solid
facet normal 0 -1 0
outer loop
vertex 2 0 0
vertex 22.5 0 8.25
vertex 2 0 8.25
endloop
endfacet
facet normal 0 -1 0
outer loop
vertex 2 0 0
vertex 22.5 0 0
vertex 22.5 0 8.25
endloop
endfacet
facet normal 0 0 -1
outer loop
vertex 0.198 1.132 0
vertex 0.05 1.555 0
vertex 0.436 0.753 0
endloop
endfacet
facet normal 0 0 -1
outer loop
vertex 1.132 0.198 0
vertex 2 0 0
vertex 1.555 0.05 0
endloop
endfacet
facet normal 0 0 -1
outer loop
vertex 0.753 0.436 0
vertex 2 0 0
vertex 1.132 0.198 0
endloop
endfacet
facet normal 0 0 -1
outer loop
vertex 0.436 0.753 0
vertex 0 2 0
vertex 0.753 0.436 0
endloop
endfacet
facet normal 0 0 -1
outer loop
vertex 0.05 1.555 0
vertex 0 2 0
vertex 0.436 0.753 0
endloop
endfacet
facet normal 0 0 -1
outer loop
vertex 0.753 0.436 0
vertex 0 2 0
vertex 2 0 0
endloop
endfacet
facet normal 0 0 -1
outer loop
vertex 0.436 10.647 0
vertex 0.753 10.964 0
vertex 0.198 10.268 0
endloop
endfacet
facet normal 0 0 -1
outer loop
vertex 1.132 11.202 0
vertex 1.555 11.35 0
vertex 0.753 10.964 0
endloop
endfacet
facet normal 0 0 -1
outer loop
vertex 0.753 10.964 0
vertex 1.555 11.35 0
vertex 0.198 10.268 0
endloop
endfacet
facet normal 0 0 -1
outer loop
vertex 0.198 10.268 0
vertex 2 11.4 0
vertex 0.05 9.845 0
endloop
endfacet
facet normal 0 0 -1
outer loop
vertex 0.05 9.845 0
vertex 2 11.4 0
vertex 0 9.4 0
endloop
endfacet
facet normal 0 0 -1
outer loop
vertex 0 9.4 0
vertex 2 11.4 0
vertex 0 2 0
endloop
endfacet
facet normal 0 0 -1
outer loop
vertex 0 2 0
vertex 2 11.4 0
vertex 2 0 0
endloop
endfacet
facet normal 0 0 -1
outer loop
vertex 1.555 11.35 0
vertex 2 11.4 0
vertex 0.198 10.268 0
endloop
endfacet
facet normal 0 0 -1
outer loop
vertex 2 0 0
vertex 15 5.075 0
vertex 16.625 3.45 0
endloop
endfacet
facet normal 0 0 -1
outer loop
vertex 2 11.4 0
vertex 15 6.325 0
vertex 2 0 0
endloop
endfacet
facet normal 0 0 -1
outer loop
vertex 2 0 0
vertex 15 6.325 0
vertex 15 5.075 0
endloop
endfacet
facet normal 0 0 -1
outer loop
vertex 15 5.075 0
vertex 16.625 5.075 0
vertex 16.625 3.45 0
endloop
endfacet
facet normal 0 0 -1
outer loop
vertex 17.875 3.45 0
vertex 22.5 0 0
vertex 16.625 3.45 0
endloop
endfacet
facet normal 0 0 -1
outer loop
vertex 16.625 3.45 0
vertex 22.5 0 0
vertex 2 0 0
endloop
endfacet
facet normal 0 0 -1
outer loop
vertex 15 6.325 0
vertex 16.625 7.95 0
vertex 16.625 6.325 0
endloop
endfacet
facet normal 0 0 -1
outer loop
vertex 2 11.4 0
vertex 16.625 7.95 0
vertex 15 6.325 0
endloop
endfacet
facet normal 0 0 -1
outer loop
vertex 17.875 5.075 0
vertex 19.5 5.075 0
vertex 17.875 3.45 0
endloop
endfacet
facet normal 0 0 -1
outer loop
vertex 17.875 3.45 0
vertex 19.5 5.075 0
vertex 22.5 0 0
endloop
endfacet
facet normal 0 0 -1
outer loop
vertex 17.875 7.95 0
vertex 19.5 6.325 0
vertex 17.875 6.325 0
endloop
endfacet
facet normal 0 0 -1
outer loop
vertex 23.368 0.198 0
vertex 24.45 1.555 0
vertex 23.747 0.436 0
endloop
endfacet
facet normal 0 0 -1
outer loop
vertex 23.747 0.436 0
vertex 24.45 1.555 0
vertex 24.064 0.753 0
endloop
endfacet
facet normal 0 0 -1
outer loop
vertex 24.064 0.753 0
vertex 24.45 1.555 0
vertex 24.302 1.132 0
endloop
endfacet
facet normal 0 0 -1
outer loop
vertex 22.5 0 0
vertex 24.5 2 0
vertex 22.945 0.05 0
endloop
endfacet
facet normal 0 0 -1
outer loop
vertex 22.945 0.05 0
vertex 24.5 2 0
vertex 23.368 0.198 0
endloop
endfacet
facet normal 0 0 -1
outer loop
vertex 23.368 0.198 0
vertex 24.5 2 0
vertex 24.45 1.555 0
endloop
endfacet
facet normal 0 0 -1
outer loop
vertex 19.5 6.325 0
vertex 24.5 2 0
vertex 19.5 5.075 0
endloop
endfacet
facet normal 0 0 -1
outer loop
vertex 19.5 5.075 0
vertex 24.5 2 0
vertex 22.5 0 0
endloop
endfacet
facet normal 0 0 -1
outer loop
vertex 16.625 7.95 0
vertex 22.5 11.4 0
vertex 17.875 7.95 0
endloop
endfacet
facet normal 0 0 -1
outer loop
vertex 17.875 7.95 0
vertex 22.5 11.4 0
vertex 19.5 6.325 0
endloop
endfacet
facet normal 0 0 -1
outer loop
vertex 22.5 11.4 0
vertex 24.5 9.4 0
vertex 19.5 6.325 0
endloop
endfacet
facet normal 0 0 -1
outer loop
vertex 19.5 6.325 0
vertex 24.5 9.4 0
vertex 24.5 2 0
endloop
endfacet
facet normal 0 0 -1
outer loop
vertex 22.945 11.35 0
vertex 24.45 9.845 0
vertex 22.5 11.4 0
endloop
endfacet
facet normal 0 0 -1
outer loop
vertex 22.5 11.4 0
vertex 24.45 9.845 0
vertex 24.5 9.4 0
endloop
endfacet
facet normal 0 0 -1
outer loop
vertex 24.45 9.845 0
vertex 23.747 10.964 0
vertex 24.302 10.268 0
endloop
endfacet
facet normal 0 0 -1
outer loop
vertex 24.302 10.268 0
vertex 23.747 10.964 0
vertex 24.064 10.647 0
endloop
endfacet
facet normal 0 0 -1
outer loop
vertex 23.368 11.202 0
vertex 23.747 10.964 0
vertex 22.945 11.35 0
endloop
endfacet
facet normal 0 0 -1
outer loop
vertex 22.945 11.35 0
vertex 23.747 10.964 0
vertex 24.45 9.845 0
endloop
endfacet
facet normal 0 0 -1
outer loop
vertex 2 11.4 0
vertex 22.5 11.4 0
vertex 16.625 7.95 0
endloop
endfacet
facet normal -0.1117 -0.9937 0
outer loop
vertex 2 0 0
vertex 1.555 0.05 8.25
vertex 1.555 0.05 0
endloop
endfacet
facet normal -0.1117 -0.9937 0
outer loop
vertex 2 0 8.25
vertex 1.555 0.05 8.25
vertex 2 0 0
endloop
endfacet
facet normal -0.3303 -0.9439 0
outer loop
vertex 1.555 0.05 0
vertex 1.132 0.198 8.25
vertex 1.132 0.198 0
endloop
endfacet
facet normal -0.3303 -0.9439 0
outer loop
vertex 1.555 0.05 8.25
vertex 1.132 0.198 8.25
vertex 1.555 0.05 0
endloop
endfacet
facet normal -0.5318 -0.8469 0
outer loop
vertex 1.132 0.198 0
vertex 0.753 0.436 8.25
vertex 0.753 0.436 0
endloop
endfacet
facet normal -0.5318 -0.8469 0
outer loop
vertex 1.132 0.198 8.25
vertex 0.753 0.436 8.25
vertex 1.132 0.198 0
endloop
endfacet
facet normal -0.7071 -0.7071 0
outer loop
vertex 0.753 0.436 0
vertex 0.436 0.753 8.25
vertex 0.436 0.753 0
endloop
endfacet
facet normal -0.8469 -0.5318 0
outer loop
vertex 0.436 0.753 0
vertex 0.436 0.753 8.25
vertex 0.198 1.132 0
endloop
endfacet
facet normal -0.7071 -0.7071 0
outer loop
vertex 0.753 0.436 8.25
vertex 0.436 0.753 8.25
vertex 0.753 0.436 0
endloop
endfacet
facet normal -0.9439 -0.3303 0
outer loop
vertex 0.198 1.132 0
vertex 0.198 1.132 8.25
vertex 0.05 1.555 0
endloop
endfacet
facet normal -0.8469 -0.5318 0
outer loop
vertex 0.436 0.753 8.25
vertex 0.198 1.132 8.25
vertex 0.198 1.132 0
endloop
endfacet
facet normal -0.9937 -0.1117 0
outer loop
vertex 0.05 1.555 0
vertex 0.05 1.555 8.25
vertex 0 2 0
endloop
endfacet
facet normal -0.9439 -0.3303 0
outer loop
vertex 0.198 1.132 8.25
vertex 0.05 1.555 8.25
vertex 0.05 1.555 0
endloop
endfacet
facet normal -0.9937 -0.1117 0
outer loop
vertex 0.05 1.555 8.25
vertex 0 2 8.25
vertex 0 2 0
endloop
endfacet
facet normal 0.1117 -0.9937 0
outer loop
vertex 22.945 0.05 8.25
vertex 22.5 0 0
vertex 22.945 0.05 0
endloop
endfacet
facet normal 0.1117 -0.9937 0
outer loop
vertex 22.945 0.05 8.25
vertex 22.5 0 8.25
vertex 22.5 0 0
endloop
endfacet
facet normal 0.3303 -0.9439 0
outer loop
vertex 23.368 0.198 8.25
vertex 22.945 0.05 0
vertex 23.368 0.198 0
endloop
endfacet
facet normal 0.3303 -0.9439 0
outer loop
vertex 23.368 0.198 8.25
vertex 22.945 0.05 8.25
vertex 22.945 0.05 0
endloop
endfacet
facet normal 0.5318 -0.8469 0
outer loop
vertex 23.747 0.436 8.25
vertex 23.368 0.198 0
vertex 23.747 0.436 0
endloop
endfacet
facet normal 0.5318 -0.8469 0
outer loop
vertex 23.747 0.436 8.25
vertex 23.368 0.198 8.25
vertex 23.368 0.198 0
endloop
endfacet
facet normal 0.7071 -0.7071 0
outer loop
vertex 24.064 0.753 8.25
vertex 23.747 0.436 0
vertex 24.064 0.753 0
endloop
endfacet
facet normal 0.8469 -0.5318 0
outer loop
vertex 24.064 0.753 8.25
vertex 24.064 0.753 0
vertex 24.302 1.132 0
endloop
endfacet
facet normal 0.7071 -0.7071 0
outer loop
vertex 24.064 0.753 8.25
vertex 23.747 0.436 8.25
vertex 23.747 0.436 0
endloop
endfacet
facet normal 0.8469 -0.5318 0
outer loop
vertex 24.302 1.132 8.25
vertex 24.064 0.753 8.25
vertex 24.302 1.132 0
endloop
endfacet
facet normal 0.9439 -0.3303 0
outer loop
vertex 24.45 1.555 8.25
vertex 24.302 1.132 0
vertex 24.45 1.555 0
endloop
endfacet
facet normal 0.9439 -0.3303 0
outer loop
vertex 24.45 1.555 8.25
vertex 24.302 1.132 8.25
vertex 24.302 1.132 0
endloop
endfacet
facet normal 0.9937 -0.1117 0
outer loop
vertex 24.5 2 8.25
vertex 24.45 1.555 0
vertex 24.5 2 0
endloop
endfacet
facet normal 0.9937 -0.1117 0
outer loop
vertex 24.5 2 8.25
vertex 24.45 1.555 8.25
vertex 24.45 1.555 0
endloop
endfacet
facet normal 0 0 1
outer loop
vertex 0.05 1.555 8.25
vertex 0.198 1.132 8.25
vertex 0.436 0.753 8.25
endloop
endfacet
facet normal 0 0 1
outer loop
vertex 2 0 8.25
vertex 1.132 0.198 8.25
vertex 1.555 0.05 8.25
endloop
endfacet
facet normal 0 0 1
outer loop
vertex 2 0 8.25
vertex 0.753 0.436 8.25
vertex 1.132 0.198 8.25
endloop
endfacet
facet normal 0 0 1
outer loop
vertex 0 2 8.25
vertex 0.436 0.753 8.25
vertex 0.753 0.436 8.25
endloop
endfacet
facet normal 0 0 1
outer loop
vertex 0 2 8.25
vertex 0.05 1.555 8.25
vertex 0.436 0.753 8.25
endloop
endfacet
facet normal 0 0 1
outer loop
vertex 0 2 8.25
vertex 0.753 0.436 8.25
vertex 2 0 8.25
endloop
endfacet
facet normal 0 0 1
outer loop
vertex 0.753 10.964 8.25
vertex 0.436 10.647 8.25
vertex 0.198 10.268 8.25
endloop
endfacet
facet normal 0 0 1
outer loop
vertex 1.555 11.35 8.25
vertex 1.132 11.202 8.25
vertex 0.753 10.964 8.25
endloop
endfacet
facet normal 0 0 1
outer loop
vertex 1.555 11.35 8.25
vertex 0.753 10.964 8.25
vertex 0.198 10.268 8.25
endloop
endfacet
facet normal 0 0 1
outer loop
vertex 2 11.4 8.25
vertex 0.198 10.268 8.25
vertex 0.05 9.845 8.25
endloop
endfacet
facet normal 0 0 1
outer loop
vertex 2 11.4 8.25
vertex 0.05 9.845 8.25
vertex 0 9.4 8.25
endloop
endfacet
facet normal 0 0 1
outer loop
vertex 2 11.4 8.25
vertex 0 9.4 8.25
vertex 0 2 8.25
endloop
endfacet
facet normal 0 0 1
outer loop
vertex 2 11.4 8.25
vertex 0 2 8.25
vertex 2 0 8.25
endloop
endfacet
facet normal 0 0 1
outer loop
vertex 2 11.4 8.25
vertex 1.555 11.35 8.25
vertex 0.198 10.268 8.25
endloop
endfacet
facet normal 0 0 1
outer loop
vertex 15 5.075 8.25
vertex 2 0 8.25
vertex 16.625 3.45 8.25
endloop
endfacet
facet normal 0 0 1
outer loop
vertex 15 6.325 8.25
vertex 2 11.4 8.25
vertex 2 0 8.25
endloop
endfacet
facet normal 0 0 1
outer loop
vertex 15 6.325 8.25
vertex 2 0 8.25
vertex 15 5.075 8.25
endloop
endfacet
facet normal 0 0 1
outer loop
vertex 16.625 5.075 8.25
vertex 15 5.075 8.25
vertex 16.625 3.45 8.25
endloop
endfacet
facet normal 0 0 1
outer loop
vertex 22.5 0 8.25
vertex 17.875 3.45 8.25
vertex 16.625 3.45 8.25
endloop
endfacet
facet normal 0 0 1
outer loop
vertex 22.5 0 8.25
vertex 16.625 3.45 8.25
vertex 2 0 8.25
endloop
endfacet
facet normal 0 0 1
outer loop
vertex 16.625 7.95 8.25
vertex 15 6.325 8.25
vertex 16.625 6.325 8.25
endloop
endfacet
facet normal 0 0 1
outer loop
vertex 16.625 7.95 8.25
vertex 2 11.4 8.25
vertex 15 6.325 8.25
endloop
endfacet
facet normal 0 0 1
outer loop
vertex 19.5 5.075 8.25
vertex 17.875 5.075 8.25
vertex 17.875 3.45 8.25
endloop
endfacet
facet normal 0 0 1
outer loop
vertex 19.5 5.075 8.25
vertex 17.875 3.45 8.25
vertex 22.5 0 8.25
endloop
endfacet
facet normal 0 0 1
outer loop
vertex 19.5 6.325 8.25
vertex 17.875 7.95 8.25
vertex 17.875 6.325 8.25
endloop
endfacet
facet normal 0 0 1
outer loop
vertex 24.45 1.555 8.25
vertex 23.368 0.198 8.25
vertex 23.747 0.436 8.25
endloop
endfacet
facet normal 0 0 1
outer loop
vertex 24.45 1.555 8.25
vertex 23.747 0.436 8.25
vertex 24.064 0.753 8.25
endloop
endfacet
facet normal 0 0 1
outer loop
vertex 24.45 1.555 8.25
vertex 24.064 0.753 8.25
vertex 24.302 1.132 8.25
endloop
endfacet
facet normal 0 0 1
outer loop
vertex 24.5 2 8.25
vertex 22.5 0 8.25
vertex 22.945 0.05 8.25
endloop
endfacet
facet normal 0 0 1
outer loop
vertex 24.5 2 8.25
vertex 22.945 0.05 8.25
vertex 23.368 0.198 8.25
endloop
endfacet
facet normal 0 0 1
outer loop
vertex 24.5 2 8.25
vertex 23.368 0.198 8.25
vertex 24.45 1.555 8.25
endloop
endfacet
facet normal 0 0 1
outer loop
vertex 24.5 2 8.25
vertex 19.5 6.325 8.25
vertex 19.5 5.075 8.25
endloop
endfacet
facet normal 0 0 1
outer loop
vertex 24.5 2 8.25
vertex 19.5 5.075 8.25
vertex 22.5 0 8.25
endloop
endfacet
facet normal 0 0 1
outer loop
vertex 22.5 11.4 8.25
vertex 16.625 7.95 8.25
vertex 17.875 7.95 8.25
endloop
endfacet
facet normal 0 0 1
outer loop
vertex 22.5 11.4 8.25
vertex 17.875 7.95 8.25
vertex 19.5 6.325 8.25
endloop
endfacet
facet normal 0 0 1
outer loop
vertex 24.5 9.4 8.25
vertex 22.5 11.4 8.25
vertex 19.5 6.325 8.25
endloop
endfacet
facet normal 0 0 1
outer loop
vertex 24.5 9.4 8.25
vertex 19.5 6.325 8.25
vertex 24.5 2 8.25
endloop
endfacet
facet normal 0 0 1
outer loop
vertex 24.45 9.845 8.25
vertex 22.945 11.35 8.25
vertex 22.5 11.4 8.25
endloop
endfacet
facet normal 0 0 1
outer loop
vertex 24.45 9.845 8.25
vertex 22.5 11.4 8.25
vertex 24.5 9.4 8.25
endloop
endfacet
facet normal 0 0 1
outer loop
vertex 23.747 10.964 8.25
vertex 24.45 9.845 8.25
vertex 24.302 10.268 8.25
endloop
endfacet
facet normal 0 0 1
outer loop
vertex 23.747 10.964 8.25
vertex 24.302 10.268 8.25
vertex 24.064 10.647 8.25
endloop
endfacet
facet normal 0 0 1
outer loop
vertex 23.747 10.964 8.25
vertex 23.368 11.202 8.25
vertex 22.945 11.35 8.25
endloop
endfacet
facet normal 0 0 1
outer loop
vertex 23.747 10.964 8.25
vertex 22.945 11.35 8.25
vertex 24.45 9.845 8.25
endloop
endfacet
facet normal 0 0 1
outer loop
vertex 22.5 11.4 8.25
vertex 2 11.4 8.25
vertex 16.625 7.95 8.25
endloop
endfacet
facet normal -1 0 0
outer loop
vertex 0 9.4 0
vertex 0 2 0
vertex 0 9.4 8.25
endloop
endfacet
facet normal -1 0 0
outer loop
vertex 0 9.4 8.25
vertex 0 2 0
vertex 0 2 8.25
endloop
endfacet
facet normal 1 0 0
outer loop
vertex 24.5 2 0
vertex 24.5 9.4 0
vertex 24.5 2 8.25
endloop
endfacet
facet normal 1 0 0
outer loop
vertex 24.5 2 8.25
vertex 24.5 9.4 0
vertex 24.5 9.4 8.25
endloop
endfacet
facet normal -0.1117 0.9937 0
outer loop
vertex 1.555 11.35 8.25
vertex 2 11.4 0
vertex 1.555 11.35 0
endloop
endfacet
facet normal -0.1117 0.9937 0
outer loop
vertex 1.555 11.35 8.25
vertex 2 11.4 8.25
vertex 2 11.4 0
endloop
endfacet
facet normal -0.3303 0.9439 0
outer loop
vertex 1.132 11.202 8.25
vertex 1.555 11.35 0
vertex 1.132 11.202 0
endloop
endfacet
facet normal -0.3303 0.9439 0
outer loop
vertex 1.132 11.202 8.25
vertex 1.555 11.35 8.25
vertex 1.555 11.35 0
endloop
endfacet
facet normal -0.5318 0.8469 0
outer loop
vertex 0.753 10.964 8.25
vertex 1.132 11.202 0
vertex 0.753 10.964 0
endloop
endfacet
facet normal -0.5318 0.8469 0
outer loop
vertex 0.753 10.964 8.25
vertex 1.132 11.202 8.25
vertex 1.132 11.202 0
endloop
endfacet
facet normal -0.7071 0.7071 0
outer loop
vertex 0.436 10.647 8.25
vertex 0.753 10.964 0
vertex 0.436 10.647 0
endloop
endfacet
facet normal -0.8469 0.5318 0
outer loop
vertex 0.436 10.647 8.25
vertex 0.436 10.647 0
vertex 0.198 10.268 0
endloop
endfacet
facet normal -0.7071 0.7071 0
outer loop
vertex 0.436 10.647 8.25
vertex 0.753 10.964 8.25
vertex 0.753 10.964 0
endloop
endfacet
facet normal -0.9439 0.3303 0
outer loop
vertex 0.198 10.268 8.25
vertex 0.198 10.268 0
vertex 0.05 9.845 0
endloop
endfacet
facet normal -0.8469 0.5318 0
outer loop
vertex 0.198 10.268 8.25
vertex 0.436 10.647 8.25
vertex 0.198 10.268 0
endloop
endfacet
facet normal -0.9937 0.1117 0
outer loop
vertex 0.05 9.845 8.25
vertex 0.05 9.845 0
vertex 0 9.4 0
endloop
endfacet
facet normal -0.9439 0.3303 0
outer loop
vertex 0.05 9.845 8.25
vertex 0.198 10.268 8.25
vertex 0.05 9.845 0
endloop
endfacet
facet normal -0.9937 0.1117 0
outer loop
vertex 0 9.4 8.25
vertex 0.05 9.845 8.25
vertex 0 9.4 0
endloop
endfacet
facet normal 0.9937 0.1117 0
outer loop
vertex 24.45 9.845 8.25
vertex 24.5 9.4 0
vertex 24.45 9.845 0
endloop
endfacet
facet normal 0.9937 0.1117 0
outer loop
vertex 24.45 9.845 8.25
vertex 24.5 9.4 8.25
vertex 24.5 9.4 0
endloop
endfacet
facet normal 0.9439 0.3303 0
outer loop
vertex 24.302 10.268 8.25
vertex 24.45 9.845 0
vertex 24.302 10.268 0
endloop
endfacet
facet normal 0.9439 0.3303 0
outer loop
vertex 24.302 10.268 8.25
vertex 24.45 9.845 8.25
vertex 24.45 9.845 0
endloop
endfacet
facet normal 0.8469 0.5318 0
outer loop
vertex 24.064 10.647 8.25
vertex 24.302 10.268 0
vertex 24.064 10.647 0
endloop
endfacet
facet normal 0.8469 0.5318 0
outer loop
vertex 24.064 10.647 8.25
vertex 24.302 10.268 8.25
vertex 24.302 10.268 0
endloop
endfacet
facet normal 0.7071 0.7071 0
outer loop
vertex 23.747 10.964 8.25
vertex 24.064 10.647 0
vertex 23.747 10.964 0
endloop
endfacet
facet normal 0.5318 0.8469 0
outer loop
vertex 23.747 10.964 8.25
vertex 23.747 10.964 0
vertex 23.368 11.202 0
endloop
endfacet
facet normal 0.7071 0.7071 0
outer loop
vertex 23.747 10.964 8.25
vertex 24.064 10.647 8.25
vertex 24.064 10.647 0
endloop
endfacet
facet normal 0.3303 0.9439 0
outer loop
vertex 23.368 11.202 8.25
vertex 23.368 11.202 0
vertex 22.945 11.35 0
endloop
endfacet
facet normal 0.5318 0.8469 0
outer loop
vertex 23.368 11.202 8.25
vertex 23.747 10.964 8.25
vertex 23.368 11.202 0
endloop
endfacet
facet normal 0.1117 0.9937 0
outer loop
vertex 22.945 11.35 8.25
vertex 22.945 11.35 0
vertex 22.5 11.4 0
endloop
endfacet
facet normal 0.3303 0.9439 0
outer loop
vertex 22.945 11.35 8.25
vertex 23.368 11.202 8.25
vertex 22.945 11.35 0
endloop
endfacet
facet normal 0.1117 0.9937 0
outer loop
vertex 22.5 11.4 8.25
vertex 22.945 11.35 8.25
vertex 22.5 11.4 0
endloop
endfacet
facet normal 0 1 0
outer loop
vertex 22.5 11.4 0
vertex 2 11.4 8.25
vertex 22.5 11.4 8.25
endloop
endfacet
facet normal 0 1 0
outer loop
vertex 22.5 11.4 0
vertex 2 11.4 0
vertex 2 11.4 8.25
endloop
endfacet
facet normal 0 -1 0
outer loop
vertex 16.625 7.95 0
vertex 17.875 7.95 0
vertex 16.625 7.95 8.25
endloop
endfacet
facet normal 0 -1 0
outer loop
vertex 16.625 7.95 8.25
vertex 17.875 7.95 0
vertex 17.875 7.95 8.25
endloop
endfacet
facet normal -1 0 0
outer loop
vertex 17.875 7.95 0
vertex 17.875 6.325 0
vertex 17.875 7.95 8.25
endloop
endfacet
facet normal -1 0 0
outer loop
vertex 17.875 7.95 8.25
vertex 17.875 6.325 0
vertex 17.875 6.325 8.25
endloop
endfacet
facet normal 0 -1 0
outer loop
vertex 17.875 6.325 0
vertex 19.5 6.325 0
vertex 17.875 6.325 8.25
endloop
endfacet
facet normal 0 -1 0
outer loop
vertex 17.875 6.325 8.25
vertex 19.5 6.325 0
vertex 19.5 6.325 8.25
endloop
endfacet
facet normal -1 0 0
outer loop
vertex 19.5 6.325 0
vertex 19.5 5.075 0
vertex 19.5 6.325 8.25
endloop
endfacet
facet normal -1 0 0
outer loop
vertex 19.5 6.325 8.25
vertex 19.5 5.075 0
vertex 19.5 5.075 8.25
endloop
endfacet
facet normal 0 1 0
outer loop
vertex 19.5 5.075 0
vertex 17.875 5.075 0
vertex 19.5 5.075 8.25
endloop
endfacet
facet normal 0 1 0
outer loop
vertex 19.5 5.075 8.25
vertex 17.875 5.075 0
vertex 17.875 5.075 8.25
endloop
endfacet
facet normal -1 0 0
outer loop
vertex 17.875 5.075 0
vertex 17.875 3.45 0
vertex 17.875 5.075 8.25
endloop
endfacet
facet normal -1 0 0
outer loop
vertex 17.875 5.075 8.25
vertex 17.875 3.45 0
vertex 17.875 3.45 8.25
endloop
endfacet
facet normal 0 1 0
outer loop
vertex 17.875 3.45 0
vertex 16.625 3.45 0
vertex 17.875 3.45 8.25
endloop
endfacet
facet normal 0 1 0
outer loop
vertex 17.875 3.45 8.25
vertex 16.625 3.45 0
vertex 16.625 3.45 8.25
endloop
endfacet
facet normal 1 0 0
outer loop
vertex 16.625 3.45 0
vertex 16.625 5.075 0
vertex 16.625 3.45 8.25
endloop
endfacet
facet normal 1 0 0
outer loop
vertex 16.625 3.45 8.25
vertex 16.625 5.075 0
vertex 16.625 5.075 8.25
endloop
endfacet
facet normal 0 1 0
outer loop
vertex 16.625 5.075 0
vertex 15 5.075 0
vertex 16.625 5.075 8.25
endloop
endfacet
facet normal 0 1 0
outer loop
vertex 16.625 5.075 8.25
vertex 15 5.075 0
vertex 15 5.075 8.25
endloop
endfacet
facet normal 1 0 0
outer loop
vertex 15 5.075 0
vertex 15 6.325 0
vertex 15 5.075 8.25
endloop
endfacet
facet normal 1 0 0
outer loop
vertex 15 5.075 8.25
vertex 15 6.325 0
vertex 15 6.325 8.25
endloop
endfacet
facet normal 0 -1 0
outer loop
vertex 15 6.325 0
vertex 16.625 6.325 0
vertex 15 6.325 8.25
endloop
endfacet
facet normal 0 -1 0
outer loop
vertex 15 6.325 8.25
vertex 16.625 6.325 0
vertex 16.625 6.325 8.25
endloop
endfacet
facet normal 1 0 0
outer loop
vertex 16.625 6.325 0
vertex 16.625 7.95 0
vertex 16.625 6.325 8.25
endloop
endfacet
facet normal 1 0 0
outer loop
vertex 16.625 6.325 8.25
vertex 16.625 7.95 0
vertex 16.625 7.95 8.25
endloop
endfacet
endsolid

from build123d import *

# Parameters (mm, degrees)
SKETCH_W  = 24.5
SKETCH_H  = 11.4
PAD_DEPTH = 8.25
FILLET_R  = 2


with BuildPart() as part:
    # Sketch → Pad (new body)
    with BuildSketch(Plane.XY):
        with Locations((12.25, 5.7)):
            Rectangle(SKETCH_W, SKETCH_H)
        Polygon((16.625, 7.95), (17.875, 7.95), (17.875, 6.325), (19.5, 6.325), (19.5, 5.075), (17.875, 5.075), (17.875, 3.45), (16.625, 3.45), (16.625, 5.075), (15, 5.075), (15, 6.325), (16.625, 6.325), align=None, mode=Mode.SUBTRACT)
    extrude(amount=PAD_DEPTH)

    # Fillet
    fillet_edges = [part.edges().sort_by_distance(p)[0] for p in [
        (24.5, 0, 4.125),
        (0, 0, 4.125),
        (24.5, 11.4, 4.125),
        (0, 11.4, 4.125),
    ]]
    fillet(fillet_edges, radius=FILLET_R)


solid = part.part
